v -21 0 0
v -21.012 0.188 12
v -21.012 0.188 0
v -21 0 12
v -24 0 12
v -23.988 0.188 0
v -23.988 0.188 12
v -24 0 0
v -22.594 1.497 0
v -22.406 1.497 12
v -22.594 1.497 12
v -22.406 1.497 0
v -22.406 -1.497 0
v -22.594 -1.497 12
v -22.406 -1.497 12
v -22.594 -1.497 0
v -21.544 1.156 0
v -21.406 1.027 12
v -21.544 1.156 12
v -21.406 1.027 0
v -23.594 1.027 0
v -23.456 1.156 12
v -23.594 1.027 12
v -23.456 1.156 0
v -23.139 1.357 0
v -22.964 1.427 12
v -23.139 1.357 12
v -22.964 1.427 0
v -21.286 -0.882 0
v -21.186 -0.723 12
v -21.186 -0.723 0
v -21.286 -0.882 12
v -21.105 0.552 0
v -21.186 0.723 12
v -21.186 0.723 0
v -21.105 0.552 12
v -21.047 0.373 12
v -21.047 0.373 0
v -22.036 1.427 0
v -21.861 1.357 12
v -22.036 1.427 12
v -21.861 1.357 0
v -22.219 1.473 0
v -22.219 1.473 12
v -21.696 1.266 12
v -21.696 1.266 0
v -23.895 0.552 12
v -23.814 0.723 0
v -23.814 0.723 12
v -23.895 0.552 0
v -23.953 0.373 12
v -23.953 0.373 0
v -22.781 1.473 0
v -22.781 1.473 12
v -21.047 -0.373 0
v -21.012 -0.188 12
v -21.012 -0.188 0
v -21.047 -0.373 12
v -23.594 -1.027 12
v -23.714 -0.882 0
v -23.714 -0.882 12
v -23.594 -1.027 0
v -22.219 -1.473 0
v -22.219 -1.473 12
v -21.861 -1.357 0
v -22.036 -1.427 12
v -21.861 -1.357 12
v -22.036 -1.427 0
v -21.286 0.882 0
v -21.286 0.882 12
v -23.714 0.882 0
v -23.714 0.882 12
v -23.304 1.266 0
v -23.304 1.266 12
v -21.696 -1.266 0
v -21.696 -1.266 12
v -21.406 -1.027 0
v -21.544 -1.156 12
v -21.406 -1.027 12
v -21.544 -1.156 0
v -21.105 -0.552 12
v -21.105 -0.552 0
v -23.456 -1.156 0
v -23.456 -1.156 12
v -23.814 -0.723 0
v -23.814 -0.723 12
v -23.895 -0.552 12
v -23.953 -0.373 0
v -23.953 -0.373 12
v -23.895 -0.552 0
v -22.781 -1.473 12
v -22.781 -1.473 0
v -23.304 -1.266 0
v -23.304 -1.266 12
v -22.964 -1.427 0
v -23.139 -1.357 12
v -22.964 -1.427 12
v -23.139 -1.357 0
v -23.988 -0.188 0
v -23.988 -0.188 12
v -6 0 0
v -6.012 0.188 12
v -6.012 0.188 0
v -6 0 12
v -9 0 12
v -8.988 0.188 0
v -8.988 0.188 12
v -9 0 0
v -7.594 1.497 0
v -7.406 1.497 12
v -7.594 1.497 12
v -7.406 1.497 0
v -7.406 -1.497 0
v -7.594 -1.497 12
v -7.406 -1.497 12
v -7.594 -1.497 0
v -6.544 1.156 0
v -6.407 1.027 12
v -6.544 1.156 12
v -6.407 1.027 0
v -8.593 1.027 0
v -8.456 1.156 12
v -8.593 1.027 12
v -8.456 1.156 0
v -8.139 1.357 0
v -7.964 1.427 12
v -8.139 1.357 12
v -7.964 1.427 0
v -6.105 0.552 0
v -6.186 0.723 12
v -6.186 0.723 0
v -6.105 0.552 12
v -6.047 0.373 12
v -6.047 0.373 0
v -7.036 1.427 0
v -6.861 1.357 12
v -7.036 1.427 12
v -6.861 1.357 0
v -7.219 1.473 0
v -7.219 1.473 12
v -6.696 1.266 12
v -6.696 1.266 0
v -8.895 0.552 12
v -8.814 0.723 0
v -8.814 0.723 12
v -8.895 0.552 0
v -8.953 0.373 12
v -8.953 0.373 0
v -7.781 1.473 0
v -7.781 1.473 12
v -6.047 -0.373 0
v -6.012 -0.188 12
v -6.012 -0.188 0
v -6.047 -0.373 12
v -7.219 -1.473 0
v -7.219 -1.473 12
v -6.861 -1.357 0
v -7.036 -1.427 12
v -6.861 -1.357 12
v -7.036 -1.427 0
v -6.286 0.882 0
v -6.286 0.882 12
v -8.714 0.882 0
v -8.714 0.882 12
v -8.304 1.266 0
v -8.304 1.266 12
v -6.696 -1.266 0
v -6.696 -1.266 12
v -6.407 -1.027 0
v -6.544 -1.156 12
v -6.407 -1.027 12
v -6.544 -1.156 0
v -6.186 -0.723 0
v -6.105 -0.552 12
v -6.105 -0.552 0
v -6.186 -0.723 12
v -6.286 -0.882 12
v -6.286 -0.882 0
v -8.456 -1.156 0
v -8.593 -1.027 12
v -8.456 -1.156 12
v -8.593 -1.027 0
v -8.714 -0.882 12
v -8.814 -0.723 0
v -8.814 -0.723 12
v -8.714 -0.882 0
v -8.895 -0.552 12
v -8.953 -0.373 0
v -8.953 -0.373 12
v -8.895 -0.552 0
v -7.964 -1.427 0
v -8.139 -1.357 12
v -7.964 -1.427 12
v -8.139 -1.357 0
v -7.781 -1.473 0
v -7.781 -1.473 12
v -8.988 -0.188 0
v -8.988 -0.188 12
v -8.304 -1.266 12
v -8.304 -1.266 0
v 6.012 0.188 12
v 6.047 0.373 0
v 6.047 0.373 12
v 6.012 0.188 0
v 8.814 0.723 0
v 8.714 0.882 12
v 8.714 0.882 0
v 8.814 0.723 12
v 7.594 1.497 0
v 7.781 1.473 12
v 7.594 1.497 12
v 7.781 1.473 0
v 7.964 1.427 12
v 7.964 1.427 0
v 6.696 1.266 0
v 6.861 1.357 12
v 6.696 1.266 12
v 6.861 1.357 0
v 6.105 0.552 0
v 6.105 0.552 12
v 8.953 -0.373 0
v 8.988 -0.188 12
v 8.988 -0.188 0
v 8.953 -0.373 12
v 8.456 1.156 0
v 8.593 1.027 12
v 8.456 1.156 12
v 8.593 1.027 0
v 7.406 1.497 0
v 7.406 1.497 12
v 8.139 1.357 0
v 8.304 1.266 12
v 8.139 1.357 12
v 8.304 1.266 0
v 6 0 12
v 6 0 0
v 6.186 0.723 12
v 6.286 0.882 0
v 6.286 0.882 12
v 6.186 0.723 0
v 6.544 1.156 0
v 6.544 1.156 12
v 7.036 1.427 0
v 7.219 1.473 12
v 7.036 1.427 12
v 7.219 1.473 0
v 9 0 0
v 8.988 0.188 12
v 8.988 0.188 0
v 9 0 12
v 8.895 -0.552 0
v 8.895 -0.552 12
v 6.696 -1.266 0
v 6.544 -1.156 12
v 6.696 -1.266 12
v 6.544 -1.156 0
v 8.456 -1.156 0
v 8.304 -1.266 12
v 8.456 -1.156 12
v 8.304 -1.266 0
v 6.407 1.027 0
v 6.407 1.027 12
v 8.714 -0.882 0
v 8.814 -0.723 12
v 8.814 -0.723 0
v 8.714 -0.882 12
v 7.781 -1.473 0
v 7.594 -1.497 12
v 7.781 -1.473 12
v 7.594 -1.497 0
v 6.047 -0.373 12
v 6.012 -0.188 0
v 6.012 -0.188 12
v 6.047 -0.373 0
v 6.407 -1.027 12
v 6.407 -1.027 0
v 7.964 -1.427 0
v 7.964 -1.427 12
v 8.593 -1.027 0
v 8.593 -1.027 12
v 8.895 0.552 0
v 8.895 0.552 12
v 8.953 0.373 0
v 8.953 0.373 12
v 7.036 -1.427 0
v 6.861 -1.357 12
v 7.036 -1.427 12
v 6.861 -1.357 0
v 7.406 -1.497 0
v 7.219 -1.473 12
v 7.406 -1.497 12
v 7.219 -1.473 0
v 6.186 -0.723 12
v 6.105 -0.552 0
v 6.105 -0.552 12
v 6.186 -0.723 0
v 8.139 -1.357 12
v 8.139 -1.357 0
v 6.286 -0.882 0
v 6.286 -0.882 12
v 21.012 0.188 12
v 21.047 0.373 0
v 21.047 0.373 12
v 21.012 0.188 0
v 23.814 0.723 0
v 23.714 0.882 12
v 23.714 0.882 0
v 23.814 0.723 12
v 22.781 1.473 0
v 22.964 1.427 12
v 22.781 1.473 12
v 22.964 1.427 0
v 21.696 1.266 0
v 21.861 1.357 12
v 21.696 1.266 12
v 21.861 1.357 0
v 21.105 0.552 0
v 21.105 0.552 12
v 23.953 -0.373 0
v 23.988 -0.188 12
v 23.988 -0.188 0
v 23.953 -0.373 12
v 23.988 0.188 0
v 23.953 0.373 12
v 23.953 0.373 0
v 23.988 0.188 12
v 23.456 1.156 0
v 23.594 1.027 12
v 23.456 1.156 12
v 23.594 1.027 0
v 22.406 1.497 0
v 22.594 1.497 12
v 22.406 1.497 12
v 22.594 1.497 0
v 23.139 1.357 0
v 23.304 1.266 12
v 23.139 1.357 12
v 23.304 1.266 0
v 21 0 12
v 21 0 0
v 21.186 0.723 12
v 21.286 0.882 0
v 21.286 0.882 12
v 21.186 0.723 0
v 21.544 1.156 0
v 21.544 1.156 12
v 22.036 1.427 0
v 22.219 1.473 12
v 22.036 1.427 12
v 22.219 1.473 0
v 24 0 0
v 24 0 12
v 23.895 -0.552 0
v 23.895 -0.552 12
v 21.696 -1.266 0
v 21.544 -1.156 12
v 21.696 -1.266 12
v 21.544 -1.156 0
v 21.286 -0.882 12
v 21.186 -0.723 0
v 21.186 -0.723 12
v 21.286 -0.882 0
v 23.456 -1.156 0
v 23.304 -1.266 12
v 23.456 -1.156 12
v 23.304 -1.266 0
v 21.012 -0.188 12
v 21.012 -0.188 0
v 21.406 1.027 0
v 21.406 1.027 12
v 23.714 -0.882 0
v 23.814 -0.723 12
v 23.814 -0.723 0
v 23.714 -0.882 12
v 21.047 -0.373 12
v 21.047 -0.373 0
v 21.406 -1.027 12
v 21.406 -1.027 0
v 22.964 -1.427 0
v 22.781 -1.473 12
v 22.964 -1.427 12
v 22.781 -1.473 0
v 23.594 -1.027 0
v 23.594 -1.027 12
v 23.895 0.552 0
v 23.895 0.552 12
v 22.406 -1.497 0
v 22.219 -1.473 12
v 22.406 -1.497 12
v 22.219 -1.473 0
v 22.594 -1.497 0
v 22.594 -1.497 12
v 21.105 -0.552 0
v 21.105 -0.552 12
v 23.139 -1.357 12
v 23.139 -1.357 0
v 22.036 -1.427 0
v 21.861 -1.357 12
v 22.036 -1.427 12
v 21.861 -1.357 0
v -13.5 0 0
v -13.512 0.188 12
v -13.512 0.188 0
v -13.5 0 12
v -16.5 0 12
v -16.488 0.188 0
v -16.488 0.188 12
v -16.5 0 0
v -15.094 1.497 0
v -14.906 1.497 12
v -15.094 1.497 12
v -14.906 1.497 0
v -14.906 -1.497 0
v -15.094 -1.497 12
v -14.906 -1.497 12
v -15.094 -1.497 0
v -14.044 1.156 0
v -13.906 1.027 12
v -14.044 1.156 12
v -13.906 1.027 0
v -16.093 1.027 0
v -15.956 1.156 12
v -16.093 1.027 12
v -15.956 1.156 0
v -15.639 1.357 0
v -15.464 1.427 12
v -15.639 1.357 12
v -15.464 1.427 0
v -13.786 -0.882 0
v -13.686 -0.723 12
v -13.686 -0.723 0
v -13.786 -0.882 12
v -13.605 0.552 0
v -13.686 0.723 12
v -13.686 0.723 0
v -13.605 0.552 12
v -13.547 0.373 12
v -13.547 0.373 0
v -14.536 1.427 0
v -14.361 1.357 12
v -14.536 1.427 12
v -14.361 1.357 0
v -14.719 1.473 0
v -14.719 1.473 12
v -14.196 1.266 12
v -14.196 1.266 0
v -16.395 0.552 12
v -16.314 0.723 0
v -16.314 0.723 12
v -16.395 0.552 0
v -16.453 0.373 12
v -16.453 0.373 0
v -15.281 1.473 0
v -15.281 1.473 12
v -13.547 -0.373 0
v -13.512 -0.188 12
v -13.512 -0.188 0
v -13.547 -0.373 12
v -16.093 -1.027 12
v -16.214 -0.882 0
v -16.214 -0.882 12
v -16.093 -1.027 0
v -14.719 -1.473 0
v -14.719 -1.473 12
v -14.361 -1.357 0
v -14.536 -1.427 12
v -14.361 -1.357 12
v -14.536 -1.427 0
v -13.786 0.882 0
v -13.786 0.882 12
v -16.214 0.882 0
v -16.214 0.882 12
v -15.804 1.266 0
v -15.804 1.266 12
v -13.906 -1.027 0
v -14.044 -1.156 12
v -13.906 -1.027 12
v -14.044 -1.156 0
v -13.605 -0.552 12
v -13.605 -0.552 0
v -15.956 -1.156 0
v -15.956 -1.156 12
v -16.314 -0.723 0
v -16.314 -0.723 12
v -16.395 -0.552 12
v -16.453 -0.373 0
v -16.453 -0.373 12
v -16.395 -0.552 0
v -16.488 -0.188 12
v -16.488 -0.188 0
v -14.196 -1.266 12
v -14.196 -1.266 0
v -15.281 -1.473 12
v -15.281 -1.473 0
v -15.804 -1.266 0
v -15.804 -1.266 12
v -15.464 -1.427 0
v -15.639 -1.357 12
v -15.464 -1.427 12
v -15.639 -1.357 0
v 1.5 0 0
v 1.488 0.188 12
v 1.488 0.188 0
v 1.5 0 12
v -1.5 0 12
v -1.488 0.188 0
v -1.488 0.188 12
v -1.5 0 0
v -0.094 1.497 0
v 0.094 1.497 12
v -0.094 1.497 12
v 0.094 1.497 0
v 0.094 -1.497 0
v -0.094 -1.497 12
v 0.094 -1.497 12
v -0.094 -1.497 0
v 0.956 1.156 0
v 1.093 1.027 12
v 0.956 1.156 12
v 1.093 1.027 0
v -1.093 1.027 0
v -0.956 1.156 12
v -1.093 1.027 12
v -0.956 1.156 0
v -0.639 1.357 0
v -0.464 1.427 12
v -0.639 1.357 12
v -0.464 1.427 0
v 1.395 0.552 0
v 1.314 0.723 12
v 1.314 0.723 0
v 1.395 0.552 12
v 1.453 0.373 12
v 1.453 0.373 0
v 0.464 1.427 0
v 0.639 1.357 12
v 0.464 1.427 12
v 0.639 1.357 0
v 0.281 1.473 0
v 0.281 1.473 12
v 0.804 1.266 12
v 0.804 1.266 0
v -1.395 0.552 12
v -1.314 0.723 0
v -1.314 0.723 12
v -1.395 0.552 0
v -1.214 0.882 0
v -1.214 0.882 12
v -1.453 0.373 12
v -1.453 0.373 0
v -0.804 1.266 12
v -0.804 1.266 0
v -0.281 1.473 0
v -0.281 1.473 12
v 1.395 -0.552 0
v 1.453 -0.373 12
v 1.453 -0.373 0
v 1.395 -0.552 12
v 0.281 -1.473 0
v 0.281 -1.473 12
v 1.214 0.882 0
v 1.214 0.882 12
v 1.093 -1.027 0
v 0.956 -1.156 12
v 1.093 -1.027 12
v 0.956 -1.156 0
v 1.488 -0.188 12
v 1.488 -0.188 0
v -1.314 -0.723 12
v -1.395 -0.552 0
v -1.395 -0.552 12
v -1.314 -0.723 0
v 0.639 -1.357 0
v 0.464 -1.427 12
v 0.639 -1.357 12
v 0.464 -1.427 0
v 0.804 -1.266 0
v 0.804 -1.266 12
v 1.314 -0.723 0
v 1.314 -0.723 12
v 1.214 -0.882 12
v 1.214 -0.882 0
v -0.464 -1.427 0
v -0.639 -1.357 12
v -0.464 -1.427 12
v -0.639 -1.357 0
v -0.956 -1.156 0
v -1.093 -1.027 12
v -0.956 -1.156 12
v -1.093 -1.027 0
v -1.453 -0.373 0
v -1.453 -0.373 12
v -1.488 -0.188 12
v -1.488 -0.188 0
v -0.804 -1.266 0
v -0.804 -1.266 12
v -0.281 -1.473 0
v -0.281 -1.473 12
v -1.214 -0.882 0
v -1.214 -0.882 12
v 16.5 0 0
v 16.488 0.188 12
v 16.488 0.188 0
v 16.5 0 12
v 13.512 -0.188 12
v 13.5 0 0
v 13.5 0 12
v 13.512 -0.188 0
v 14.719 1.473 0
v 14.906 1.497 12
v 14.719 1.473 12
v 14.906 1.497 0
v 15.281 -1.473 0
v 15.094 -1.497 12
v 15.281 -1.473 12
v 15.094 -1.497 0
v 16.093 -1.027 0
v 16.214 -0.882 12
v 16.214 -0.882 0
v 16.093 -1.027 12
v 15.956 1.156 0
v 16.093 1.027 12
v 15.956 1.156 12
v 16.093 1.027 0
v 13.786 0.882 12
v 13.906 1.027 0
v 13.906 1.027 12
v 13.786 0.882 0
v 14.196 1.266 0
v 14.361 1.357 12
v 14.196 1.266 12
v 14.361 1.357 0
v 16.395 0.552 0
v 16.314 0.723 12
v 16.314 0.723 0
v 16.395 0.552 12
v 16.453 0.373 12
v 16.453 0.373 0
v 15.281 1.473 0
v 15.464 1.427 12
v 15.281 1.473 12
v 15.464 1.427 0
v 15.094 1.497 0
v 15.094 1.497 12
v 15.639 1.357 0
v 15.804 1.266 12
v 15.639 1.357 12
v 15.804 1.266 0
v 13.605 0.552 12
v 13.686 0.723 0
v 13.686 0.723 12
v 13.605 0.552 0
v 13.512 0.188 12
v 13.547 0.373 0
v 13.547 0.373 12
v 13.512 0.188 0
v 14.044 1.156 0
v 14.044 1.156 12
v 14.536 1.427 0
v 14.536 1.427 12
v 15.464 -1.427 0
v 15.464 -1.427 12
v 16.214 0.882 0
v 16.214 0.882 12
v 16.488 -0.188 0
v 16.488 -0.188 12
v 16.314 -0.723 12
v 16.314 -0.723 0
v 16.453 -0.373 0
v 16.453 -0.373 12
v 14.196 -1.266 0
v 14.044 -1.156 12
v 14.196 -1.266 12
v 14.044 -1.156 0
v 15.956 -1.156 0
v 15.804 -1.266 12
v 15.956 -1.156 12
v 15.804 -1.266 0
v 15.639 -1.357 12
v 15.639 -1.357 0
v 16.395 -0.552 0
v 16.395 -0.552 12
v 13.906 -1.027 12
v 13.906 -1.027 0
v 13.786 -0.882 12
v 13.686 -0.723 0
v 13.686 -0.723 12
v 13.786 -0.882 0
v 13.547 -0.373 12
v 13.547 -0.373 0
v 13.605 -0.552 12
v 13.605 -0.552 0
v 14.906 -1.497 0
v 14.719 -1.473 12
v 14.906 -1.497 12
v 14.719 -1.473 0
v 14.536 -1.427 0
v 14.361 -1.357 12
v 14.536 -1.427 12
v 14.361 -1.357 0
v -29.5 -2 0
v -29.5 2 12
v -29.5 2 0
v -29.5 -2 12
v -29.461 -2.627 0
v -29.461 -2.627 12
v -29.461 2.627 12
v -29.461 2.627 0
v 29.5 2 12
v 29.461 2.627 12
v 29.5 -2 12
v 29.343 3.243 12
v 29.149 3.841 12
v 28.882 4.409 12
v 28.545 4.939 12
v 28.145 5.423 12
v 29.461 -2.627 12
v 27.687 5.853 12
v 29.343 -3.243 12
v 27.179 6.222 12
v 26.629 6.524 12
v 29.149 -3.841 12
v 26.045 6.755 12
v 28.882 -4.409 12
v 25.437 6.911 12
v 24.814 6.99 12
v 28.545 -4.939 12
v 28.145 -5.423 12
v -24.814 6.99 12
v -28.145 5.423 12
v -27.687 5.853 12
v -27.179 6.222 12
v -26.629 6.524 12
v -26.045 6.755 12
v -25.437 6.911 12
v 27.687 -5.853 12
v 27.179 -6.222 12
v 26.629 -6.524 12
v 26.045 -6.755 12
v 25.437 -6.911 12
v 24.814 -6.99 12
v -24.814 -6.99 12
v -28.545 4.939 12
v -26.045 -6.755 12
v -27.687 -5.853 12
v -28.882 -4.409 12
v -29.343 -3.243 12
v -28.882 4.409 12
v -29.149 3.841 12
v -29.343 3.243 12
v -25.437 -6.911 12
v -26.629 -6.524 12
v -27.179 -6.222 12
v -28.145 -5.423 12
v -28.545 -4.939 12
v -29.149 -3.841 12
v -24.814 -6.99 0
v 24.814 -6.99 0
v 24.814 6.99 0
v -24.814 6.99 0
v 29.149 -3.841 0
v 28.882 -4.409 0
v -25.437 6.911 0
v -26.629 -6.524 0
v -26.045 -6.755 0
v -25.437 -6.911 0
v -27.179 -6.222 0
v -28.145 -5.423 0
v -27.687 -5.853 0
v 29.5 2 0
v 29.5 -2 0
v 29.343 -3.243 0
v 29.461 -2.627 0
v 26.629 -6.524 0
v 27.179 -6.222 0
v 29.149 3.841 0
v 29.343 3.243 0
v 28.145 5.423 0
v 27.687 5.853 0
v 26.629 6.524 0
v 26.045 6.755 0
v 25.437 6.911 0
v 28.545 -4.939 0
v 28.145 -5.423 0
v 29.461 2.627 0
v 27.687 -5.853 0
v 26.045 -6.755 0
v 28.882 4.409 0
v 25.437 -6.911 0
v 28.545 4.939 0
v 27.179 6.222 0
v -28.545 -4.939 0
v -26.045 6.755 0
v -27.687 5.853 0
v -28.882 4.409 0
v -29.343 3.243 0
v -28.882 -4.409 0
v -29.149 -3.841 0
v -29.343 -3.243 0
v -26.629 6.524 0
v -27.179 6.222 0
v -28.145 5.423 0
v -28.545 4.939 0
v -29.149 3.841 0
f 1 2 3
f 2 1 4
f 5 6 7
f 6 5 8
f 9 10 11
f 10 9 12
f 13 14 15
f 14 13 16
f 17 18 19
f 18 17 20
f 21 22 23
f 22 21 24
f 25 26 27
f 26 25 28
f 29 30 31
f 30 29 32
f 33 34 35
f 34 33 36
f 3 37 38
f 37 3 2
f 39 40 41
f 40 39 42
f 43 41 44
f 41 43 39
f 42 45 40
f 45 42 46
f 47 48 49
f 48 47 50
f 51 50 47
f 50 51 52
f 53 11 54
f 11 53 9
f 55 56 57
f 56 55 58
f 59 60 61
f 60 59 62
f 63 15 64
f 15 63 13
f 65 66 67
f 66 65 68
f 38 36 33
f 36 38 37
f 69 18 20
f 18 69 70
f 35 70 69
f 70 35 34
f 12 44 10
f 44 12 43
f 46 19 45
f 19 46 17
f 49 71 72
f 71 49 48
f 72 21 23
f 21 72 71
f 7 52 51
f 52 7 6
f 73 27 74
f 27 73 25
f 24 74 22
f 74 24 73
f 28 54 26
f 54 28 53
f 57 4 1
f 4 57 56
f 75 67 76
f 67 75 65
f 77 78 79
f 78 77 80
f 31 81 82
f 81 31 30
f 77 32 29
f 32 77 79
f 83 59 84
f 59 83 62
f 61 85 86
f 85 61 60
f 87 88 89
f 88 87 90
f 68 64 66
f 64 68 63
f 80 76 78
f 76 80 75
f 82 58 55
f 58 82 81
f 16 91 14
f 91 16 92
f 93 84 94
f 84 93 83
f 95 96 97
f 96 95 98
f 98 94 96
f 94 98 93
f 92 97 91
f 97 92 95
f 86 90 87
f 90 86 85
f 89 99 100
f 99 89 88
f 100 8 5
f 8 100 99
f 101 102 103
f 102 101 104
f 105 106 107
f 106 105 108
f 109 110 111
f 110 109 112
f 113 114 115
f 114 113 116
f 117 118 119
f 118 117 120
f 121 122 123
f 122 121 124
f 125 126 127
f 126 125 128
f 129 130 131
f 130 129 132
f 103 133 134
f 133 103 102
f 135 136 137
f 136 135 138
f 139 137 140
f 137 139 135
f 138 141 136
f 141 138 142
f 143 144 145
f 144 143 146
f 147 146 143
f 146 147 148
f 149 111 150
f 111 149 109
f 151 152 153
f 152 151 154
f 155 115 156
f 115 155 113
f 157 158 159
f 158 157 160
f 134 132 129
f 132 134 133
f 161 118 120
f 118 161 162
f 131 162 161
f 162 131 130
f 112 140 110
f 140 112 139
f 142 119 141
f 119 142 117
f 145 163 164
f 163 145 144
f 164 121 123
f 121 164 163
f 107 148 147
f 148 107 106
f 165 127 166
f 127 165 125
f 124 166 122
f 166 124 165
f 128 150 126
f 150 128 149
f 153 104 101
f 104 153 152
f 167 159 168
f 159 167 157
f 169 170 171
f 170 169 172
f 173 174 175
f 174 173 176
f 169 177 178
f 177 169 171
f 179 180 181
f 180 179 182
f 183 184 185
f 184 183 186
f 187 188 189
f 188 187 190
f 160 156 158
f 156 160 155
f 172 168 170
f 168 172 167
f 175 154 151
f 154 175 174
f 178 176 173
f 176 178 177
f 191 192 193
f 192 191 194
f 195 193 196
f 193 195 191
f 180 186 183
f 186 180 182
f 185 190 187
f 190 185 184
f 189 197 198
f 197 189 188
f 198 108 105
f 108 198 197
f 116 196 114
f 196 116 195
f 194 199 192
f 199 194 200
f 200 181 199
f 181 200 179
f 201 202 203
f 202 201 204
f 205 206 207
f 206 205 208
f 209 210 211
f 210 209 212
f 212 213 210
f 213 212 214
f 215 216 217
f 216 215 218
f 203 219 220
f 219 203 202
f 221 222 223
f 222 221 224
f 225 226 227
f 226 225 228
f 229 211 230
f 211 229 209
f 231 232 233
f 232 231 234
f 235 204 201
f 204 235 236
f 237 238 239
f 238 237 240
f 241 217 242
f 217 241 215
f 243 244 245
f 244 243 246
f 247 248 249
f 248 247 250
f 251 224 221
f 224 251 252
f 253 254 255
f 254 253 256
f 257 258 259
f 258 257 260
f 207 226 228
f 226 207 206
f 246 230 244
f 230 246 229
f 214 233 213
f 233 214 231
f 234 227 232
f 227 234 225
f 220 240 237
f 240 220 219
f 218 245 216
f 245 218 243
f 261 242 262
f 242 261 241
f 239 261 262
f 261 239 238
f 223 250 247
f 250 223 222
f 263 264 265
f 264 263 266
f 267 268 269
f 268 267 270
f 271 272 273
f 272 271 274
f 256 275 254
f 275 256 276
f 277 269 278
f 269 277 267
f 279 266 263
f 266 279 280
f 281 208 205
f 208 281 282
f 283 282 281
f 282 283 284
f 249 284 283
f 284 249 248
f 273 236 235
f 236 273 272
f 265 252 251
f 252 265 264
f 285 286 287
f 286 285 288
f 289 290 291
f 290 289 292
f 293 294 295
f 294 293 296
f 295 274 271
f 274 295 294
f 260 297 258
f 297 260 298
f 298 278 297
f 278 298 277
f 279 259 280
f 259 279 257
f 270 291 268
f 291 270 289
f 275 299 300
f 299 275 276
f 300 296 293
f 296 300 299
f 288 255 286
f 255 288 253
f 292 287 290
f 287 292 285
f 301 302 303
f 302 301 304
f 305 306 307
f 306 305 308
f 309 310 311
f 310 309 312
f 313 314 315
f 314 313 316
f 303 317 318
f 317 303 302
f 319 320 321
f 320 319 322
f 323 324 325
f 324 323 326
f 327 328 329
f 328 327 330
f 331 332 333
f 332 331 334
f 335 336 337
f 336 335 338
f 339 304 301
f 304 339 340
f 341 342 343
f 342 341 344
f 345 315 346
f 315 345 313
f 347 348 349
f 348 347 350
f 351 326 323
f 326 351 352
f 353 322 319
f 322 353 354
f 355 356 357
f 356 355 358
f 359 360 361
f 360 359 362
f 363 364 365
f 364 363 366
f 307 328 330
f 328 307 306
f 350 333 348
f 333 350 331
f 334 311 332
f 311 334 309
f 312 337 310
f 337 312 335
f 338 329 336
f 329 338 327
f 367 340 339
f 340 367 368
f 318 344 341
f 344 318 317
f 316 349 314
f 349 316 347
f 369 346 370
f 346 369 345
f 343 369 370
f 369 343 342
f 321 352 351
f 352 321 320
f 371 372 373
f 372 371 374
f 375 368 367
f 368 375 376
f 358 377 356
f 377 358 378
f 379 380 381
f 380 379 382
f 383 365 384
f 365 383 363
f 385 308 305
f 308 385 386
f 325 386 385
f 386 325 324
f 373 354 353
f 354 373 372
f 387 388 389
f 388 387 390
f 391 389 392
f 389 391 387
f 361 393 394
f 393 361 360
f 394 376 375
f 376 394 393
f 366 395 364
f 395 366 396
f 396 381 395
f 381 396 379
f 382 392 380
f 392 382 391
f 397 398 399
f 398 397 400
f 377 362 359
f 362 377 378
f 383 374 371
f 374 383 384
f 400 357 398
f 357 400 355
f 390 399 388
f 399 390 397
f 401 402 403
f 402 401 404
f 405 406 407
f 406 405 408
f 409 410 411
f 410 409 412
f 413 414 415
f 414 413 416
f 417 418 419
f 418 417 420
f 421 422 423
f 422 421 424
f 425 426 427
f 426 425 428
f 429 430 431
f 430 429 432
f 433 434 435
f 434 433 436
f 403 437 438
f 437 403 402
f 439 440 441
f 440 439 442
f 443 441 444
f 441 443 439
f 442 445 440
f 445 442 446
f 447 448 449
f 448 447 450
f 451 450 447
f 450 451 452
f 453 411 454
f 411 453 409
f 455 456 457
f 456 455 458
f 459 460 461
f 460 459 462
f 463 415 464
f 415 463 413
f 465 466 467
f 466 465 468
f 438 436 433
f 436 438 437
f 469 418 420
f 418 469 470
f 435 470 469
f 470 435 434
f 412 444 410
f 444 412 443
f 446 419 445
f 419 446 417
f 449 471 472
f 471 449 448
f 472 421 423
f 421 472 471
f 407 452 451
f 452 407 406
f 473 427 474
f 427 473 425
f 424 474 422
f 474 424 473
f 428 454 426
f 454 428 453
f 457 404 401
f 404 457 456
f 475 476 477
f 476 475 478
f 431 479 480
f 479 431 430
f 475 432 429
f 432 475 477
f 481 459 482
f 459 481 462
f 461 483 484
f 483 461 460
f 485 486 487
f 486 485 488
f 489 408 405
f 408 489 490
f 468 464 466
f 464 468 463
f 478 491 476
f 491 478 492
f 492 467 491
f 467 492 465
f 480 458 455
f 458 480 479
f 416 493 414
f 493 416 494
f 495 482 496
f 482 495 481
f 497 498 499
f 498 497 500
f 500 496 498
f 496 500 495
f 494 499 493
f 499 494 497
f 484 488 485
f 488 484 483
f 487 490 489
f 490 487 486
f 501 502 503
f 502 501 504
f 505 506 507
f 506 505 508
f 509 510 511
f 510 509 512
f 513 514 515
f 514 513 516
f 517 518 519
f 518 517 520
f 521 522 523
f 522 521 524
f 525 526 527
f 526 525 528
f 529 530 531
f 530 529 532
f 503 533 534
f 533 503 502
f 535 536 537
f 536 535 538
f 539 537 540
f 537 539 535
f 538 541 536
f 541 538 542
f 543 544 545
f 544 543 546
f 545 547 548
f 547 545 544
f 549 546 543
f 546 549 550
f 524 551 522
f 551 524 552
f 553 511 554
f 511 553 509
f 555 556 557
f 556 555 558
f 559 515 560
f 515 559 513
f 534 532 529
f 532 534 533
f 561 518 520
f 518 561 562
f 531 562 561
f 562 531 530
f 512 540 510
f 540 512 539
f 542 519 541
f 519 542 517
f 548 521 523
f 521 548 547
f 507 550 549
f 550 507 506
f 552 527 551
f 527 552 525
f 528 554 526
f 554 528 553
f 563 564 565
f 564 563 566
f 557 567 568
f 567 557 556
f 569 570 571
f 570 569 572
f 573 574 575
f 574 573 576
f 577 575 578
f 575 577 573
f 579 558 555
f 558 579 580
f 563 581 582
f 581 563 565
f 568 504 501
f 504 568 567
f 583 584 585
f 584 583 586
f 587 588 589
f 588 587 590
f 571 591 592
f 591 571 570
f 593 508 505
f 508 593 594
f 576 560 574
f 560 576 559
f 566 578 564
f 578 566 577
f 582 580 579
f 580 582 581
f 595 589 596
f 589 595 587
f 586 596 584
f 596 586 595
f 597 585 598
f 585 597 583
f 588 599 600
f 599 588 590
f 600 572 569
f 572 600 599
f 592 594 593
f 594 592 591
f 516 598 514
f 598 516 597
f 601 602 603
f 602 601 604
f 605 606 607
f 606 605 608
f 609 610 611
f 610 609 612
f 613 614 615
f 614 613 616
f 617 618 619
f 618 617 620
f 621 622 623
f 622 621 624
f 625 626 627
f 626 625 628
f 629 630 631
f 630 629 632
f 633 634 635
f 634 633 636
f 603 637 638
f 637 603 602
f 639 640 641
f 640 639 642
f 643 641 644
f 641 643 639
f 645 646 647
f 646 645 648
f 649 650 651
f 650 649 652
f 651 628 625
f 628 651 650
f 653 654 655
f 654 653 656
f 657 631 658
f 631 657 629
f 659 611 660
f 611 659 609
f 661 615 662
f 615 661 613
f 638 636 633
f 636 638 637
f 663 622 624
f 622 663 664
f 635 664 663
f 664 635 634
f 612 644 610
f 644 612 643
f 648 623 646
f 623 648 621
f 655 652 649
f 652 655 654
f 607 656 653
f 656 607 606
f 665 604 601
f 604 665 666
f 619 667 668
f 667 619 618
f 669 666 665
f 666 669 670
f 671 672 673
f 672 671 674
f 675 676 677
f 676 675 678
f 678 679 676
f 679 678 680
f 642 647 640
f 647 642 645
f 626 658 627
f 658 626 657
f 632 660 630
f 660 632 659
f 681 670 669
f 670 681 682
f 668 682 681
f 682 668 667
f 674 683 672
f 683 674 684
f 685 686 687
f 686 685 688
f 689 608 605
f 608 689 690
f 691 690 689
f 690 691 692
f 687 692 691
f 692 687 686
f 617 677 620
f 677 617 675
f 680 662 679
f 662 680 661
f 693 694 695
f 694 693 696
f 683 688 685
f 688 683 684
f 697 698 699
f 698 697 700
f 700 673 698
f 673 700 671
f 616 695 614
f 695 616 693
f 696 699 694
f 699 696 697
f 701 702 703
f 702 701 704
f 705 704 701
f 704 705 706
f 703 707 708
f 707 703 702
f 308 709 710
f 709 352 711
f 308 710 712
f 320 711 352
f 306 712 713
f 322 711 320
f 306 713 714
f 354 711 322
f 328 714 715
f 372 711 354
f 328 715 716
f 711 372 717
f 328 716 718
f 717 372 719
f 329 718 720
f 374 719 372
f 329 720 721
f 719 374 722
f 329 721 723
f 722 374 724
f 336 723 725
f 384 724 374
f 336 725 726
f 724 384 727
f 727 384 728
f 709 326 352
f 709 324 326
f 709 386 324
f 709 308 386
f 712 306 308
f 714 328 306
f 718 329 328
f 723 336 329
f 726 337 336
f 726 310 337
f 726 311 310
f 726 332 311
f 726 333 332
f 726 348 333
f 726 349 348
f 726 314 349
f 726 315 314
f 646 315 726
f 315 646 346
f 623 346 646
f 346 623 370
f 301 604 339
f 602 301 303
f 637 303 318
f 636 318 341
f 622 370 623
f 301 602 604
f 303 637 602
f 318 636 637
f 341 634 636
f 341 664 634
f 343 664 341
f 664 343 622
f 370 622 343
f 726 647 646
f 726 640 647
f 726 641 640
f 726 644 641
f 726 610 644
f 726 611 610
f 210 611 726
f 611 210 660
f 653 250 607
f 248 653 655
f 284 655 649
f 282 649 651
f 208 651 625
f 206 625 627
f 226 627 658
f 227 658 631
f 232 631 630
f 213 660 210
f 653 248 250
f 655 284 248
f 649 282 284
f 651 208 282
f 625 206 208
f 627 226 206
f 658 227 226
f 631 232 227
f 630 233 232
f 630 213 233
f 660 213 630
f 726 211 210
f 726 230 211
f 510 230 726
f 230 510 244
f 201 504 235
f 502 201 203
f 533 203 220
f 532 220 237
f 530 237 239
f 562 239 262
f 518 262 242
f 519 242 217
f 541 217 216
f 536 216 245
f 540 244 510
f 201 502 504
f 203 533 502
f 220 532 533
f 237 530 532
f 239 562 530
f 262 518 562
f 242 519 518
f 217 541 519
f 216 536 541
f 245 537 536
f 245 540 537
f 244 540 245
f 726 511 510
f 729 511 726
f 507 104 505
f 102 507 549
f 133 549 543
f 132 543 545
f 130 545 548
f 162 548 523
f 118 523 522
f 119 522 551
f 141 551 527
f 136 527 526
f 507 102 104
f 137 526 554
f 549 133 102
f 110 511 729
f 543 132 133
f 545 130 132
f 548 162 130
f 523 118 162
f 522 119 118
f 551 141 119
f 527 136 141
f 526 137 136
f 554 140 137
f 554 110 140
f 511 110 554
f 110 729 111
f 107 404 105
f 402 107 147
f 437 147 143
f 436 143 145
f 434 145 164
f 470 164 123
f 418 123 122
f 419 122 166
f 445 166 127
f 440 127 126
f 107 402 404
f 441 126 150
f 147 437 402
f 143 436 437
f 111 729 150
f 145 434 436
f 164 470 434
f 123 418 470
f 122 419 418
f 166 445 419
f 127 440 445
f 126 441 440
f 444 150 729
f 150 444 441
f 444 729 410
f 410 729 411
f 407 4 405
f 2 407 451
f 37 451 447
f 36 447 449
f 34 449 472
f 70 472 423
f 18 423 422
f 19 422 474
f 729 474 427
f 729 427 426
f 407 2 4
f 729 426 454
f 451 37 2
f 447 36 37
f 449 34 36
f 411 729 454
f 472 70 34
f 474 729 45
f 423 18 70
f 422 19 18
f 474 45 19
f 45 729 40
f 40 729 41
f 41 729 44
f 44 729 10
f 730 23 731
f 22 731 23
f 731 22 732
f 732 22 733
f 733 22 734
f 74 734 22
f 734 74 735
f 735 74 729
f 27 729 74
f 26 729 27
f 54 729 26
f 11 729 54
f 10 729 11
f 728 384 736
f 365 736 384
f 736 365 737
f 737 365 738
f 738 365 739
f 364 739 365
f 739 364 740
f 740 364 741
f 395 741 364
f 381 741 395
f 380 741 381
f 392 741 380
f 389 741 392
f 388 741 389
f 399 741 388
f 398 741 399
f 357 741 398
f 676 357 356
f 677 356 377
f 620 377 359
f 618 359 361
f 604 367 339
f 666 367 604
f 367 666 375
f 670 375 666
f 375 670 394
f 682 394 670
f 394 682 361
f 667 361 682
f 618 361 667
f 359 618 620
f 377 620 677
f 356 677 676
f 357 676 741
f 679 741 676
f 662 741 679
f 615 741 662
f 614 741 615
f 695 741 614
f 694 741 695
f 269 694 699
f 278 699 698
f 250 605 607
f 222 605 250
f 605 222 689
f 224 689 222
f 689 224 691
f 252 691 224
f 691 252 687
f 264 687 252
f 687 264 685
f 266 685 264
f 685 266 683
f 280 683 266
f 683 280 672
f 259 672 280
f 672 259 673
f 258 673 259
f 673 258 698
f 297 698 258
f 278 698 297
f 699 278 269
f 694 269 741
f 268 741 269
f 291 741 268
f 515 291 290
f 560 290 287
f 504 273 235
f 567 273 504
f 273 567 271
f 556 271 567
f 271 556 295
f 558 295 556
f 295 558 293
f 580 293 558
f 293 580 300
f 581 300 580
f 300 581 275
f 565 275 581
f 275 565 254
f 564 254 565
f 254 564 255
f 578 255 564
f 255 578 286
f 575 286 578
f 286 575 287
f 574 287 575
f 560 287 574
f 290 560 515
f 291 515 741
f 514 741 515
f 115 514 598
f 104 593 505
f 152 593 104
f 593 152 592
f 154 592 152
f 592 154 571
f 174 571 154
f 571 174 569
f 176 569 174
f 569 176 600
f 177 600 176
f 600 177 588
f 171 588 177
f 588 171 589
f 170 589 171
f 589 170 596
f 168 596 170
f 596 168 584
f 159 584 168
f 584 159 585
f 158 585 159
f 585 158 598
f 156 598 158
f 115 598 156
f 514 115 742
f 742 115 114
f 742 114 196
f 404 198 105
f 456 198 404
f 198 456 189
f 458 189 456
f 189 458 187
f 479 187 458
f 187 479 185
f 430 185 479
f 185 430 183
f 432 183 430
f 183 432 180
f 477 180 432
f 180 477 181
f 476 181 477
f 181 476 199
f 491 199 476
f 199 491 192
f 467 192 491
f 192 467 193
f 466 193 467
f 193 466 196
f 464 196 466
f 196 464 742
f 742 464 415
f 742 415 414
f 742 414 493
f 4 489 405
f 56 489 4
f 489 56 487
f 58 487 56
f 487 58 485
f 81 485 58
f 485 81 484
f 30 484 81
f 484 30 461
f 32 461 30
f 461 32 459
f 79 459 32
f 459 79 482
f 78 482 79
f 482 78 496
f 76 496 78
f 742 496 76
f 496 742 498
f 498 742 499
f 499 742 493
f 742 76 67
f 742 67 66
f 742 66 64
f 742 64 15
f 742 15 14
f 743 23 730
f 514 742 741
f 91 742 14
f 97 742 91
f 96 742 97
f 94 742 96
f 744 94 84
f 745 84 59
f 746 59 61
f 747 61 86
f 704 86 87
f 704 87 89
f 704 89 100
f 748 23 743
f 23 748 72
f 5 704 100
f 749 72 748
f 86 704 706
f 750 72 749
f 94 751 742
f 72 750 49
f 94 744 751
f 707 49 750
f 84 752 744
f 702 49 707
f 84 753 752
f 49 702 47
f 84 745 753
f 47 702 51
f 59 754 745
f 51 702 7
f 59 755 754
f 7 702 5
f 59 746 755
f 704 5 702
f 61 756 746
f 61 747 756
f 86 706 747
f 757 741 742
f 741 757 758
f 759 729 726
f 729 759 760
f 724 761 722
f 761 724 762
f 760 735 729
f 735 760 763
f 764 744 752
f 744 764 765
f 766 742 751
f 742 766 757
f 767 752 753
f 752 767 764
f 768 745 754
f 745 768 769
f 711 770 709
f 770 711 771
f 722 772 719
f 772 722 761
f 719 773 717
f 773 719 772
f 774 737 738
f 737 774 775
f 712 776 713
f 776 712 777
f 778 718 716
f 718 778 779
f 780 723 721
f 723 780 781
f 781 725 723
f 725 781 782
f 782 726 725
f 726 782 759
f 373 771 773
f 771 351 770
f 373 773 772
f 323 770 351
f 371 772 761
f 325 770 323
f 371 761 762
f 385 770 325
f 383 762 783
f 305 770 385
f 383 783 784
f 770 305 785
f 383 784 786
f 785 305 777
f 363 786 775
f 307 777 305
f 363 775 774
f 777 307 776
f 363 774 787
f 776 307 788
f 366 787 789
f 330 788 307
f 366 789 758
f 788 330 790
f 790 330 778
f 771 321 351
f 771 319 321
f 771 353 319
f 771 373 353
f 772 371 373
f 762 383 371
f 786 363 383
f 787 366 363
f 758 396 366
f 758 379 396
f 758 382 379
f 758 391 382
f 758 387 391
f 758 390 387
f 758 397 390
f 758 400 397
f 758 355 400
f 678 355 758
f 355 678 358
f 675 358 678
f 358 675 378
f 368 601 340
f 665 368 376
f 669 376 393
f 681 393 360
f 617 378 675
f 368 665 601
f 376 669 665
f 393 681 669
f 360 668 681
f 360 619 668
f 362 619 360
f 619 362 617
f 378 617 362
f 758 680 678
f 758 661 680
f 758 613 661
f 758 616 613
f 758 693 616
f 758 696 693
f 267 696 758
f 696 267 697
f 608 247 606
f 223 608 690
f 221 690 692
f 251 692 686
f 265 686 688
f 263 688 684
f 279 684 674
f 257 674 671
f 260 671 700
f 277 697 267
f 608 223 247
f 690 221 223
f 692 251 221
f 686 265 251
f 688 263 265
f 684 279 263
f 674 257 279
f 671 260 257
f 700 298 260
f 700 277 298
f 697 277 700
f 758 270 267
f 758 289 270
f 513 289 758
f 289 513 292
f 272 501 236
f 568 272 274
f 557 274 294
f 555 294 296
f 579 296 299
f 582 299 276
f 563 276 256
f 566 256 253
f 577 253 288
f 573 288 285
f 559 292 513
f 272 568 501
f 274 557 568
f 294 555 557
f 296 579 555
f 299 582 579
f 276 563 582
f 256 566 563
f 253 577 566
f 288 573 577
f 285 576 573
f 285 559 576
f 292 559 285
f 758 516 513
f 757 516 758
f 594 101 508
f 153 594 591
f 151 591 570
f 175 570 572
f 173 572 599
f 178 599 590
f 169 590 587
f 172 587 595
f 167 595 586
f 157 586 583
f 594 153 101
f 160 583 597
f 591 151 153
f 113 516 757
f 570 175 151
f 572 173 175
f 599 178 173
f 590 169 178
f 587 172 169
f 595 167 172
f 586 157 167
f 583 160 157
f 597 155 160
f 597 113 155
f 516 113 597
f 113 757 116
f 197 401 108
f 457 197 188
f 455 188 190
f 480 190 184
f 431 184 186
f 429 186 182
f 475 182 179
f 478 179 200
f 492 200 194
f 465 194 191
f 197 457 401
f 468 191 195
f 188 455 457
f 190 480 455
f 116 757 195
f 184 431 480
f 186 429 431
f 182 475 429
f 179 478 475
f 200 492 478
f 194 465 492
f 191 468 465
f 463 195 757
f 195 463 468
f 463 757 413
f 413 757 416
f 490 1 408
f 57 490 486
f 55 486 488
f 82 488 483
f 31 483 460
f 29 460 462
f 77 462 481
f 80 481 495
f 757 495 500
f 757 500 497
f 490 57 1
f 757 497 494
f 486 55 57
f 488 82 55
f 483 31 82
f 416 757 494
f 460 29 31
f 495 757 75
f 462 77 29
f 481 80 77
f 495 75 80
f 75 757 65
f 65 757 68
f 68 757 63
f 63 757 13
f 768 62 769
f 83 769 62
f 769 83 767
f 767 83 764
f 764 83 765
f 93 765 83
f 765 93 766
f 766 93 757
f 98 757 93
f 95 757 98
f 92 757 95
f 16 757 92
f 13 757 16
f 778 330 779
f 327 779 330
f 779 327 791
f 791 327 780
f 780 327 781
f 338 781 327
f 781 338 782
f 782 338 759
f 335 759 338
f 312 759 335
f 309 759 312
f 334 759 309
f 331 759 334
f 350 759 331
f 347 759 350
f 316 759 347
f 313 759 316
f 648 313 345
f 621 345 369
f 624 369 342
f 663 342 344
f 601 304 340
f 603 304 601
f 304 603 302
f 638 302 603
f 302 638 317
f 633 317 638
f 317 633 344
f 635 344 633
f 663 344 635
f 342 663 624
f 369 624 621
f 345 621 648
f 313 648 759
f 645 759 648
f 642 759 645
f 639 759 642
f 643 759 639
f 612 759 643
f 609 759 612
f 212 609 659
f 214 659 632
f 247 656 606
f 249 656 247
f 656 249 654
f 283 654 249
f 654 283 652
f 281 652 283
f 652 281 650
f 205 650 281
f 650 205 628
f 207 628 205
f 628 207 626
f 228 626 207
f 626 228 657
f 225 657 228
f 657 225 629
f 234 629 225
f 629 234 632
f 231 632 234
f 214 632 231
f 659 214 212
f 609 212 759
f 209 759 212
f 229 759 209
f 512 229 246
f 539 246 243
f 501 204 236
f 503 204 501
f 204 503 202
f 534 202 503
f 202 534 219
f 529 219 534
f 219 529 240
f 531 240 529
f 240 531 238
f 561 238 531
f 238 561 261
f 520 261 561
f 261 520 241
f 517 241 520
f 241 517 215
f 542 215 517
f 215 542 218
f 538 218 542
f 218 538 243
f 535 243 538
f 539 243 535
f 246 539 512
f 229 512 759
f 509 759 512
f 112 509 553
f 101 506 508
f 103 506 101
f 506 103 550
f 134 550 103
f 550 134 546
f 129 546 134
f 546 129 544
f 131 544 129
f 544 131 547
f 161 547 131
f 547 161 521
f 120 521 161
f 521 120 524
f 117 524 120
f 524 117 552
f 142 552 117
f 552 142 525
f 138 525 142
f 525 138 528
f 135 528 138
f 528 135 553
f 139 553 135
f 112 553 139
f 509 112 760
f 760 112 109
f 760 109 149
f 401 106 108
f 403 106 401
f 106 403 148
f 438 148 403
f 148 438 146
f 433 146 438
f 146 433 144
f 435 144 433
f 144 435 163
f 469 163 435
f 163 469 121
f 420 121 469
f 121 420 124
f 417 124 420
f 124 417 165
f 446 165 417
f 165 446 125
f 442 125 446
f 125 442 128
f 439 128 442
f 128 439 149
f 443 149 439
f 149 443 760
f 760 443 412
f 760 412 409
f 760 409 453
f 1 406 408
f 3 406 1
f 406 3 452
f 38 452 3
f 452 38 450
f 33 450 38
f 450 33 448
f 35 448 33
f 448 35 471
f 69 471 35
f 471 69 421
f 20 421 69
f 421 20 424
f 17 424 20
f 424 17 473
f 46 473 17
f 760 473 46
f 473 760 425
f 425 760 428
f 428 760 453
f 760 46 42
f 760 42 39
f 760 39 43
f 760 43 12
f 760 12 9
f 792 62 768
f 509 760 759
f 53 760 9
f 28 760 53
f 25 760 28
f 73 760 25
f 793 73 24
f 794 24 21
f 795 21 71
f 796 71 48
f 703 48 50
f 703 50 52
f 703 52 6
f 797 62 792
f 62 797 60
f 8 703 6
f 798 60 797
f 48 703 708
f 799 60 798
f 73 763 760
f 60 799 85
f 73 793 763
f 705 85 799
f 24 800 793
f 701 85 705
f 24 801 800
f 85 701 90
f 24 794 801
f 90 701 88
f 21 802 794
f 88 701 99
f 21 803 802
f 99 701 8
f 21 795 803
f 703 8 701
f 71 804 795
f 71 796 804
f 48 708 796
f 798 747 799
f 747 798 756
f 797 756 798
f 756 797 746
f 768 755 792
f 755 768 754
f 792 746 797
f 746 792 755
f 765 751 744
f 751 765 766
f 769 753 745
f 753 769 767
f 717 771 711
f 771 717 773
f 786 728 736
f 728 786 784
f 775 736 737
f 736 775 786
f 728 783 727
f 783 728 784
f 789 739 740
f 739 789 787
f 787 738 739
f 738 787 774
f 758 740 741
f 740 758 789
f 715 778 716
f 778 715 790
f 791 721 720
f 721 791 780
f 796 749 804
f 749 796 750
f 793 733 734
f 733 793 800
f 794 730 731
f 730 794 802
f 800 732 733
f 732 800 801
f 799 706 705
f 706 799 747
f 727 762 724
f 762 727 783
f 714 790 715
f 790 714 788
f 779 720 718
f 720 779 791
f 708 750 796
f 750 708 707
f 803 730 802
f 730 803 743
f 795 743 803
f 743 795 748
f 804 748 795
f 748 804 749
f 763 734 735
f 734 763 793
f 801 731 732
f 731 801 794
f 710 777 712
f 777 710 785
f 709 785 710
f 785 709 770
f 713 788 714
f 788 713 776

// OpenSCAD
$fn = 50;


difference() {
	union() {
		hull() {
			translate(v = [-24.5000000000, 2.0000000000, 0]) {
				cylinder(h = 12, r = 5);
			}
			translate(v = [24.5000000000, 2.0000000000, 0]) {
				cylinder(h = 12, r = 5);
			}
			translate(v = [-24.5000000000, -2.0000000000, 0]) {
				cylinder(h = 12, r = 5);
			}
			translate(v = [24.5000000000, -2.0000000000, 0]) {
				cylinder(h = 12, r = 5);
			}
		}
	}
	union() {
		translate(v = [-22.5000000000, 0.0000000000, 0]) {
			translate(v = [0, 0, -100]) {
				cylinder(h = 200, r = 1.5000000000);
			}
		}
		translate(v = [-7.5000000000, 0.0000000000, 0]) {
			translate(v = [0, 0, -100]) {
				cylinder(h = 200, r = 1.5000000000);
			}
		}
		translate(v = [7.5000000000, 0.0000000000, 0]) {
			translate(v = [0, 0, -100]) {
				cylinder(h = 200, r = 1.5000000000);
			}
		}
		translate(v = [22.5000000000, 0.0000000000, 0]) {
			translate(v = [0, 0, -100]) {
				cylinder(h = 200, r = 1.5000000000);
			}
		}
		translate(v = [-22.5000000000, 0.0000000000, 0]) {
			translate(v = [0, 0, -100]) {
				cylinder(h = 200, r = 1.5000000000);
			}
		}
		translate(v = [-15.0000000000, 0.0000000000, 0]) {
			translate(v = [0, 0, -100]) {
				cylinder(h = 200, r = 1.5000000000);
			}
		}
		translate(v = [-7.5000000000, 0.0000000000, 0]) {
			translate(v = [0, 0, -100]) {
				cylinder(h = 200, r = 1.5000000000);
			}
		}
		translate(v = [0, 0, -100]) {
			cylinder(h = 200, r = 1.5000000000);
		}
		translate(v = [7.5000000000, 0.0000000000, 0]) {
			translate(v = [0, 0, -100]) {
				cylinder(h = 200, r = 1.5000000000);
			}
		}
		translate(v = [15.0000000000, 0.0000000000, 0]) {
			translate(v = [0, 0, -100]) {
				cylinder(h = 200, r = 1.5000000000);
			}
		}
		translate(v = [22.5000000000, 0.0000000000, 0]) {
			translate(v = [0, 0, -100]) {
				cylinder(h = 200, r = 1.5000000000);
			}
		}
	}
}
